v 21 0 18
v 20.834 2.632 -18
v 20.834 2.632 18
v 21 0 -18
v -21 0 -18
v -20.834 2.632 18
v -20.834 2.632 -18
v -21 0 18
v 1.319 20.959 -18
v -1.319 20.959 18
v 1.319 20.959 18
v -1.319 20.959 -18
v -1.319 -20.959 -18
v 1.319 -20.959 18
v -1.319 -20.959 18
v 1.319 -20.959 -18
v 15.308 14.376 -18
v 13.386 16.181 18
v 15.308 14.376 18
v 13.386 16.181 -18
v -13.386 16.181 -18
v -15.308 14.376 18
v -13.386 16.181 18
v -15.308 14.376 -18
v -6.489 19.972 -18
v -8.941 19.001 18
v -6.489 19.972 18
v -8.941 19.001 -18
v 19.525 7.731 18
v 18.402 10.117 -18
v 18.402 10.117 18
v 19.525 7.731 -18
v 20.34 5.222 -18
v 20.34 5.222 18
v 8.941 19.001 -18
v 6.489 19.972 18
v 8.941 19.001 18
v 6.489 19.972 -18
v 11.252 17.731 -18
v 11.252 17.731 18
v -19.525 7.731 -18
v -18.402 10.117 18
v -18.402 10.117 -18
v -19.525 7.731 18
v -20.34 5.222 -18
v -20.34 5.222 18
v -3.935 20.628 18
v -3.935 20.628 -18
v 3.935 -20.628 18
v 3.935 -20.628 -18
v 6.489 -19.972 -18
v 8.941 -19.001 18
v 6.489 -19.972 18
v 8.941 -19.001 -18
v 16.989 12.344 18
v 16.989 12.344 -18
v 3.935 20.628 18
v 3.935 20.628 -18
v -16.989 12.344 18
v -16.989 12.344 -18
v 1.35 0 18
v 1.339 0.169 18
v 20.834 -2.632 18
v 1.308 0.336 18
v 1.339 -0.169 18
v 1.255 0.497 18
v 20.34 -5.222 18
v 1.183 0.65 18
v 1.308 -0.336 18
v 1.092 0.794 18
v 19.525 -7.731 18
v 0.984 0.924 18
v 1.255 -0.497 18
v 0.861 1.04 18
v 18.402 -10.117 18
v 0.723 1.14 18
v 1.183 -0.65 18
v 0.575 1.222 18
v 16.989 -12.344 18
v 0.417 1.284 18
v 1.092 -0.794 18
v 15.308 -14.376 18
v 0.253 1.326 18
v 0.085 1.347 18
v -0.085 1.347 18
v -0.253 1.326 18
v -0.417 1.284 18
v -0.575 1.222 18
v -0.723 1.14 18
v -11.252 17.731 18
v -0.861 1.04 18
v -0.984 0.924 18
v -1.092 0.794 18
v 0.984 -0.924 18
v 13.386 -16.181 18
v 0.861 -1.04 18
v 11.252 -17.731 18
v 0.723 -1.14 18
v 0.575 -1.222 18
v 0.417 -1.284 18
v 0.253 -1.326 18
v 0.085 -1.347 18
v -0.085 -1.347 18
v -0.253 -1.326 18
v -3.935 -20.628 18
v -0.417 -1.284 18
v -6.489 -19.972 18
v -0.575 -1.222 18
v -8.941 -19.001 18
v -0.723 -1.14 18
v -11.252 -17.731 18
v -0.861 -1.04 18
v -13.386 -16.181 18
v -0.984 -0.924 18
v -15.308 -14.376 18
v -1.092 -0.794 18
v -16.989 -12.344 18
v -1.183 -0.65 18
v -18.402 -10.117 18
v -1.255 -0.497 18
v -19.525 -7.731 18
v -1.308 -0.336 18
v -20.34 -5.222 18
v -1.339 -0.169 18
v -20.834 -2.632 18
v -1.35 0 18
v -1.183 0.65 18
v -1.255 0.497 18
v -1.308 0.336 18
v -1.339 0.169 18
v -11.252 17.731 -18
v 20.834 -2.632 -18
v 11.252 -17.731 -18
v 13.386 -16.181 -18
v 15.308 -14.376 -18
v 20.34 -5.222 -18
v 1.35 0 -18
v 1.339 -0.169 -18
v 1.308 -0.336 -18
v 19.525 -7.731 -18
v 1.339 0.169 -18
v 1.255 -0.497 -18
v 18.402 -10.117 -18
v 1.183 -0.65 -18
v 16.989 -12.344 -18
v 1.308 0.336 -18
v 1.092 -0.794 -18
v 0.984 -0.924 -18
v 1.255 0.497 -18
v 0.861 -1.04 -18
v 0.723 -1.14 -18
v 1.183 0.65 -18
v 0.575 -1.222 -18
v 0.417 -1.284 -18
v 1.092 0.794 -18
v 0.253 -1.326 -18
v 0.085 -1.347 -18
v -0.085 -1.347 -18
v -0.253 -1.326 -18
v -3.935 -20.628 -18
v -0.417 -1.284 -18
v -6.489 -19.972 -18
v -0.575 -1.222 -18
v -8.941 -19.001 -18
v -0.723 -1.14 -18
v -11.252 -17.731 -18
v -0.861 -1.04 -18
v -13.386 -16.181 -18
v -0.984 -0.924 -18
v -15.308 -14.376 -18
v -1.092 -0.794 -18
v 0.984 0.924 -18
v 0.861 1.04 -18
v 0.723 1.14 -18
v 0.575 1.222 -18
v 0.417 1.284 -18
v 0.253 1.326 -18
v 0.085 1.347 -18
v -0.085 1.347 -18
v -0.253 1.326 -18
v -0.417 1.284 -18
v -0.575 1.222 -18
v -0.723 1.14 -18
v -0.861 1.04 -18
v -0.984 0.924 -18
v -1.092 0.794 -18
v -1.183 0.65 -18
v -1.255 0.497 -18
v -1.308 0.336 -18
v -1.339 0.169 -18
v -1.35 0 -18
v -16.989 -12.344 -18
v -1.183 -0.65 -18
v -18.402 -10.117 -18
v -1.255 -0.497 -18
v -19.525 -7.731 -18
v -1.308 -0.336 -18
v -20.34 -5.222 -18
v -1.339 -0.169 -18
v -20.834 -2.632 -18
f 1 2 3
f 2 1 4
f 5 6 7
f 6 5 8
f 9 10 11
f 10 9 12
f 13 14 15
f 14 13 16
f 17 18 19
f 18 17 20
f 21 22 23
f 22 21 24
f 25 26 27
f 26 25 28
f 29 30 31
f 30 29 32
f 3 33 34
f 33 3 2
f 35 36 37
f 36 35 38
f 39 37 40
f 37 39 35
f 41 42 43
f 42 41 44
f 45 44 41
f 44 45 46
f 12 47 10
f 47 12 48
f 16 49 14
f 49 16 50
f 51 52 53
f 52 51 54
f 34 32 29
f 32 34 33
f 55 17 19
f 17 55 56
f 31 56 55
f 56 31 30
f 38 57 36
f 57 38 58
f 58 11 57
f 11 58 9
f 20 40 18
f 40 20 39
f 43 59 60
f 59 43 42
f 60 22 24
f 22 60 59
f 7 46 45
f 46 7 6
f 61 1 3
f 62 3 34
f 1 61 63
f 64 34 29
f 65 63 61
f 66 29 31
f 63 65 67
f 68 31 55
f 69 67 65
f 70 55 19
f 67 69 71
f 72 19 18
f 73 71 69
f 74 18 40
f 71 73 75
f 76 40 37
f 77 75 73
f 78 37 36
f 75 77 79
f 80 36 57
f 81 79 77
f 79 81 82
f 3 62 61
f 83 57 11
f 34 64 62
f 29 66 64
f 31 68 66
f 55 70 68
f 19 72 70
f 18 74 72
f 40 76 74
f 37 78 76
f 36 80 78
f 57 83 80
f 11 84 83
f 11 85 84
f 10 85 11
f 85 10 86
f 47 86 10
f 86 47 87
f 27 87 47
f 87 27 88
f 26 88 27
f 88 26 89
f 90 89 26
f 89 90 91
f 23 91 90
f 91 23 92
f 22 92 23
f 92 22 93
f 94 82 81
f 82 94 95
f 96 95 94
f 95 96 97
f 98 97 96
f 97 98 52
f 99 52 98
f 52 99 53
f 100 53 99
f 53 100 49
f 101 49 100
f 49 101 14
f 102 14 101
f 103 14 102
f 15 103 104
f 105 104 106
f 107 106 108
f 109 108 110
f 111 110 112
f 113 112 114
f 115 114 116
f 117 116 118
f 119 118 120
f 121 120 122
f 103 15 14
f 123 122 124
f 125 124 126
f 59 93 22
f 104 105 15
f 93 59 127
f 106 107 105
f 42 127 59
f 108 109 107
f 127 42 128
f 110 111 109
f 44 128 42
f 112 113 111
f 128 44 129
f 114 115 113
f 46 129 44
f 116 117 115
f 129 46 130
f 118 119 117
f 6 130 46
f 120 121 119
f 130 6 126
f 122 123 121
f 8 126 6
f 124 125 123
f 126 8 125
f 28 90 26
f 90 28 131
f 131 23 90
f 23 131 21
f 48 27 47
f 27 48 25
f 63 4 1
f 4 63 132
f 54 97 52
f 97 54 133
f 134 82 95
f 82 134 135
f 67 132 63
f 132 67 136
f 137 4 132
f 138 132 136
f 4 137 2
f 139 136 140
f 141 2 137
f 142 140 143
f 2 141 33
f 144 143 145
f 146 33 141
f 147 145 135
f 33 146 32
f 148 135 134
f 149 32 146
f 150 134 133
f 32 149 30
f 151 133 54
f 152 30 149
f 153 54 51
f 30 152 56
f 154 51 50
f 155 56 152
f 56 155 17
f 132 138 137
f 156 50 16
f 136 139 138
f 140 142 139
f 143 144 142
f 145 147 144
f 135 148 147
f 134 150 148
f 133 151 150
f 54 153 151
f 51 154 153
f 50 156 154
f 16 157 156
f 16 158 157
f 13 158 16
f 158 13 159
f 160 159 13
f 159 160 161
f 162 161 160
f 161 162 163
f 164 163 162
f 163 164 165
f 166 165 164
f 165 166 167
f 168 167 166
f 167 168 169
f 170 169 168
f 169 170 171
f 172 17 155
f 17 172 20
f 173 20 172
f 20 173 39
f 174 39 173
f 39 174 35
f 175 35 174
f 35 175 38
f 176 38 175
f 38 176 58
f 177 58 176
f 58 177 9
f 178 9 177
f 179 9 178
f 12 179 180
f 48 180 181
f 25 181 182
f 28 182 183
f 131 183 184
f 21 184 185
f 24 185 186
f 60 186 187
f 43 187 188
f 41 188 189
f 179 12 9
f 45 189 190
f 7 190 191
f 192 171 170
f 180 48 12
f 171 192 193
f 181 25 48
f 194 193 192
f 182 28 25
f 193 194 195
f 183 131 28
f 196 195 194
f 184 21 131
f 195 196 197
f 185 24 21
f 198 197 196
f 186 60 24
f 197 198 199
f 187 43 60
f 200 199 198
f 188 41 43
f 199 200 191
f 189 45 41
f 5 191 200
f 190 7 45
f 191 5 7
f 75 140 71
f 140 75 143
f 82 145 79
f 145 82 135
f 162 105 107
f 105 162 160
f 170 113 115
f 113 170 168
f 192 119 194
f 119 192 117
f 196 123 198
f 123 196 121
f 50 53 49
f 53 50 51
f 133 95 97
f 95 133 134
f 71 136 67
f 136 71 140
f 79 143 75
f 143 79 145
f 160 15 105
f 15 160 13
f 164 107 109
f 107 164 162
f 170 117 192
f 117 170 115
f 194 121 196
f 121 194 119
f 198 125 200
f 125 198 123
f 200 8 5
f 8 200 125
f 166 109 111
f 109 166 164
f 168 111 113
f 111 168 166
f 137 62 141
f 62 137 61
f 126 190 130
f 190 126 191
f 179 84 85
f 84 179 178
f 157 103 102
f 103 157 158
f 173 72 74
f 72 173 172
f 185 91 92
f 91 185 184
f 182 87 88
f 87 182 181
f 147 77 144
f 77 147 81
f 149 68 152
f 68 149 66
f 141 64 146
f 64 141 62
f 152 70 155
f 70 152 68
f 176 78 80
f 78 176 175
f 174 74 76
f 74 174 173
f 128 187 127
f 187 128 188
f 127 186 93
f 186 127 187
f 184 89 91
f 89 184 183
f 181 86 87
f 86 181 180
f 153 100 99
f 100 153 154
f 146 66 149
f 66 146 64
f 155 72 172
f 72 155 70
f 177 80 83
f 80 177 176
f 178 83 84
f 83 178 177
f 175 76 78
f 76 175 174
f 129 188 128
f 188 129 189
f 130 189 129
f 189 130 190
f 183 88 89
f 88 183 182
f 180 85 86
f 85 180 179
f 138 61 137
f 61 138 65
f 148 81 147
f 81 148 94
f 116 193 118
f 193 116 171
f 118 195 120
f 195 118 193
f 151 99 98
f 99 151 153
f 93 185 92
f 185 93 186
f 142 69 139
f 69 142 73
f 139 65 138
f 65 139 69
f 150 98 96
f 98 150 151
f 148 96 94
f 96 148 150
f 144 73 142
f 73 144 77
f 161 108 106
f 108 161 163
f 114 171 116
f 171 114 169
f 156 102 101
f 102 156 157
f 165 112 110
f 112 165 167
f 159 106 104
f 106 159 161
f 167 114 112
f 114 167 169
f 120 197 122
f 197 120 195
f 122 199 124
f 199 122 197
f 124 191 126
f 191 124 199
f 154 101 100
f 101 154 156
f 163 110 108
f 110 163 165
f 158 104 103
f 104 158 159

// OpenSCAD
$fn = 50;


difference() {
	union() {
		translate(v = [0, 0, -18.0000000000]) {
			cylinder(h = 36, r = 21.0000000000);
		}
	}
	union() {
		translate(v = [0, 0, -100.0000000000]) {
			cylinder(h = 200, r = 1.3500000000);
		}
	}
}
